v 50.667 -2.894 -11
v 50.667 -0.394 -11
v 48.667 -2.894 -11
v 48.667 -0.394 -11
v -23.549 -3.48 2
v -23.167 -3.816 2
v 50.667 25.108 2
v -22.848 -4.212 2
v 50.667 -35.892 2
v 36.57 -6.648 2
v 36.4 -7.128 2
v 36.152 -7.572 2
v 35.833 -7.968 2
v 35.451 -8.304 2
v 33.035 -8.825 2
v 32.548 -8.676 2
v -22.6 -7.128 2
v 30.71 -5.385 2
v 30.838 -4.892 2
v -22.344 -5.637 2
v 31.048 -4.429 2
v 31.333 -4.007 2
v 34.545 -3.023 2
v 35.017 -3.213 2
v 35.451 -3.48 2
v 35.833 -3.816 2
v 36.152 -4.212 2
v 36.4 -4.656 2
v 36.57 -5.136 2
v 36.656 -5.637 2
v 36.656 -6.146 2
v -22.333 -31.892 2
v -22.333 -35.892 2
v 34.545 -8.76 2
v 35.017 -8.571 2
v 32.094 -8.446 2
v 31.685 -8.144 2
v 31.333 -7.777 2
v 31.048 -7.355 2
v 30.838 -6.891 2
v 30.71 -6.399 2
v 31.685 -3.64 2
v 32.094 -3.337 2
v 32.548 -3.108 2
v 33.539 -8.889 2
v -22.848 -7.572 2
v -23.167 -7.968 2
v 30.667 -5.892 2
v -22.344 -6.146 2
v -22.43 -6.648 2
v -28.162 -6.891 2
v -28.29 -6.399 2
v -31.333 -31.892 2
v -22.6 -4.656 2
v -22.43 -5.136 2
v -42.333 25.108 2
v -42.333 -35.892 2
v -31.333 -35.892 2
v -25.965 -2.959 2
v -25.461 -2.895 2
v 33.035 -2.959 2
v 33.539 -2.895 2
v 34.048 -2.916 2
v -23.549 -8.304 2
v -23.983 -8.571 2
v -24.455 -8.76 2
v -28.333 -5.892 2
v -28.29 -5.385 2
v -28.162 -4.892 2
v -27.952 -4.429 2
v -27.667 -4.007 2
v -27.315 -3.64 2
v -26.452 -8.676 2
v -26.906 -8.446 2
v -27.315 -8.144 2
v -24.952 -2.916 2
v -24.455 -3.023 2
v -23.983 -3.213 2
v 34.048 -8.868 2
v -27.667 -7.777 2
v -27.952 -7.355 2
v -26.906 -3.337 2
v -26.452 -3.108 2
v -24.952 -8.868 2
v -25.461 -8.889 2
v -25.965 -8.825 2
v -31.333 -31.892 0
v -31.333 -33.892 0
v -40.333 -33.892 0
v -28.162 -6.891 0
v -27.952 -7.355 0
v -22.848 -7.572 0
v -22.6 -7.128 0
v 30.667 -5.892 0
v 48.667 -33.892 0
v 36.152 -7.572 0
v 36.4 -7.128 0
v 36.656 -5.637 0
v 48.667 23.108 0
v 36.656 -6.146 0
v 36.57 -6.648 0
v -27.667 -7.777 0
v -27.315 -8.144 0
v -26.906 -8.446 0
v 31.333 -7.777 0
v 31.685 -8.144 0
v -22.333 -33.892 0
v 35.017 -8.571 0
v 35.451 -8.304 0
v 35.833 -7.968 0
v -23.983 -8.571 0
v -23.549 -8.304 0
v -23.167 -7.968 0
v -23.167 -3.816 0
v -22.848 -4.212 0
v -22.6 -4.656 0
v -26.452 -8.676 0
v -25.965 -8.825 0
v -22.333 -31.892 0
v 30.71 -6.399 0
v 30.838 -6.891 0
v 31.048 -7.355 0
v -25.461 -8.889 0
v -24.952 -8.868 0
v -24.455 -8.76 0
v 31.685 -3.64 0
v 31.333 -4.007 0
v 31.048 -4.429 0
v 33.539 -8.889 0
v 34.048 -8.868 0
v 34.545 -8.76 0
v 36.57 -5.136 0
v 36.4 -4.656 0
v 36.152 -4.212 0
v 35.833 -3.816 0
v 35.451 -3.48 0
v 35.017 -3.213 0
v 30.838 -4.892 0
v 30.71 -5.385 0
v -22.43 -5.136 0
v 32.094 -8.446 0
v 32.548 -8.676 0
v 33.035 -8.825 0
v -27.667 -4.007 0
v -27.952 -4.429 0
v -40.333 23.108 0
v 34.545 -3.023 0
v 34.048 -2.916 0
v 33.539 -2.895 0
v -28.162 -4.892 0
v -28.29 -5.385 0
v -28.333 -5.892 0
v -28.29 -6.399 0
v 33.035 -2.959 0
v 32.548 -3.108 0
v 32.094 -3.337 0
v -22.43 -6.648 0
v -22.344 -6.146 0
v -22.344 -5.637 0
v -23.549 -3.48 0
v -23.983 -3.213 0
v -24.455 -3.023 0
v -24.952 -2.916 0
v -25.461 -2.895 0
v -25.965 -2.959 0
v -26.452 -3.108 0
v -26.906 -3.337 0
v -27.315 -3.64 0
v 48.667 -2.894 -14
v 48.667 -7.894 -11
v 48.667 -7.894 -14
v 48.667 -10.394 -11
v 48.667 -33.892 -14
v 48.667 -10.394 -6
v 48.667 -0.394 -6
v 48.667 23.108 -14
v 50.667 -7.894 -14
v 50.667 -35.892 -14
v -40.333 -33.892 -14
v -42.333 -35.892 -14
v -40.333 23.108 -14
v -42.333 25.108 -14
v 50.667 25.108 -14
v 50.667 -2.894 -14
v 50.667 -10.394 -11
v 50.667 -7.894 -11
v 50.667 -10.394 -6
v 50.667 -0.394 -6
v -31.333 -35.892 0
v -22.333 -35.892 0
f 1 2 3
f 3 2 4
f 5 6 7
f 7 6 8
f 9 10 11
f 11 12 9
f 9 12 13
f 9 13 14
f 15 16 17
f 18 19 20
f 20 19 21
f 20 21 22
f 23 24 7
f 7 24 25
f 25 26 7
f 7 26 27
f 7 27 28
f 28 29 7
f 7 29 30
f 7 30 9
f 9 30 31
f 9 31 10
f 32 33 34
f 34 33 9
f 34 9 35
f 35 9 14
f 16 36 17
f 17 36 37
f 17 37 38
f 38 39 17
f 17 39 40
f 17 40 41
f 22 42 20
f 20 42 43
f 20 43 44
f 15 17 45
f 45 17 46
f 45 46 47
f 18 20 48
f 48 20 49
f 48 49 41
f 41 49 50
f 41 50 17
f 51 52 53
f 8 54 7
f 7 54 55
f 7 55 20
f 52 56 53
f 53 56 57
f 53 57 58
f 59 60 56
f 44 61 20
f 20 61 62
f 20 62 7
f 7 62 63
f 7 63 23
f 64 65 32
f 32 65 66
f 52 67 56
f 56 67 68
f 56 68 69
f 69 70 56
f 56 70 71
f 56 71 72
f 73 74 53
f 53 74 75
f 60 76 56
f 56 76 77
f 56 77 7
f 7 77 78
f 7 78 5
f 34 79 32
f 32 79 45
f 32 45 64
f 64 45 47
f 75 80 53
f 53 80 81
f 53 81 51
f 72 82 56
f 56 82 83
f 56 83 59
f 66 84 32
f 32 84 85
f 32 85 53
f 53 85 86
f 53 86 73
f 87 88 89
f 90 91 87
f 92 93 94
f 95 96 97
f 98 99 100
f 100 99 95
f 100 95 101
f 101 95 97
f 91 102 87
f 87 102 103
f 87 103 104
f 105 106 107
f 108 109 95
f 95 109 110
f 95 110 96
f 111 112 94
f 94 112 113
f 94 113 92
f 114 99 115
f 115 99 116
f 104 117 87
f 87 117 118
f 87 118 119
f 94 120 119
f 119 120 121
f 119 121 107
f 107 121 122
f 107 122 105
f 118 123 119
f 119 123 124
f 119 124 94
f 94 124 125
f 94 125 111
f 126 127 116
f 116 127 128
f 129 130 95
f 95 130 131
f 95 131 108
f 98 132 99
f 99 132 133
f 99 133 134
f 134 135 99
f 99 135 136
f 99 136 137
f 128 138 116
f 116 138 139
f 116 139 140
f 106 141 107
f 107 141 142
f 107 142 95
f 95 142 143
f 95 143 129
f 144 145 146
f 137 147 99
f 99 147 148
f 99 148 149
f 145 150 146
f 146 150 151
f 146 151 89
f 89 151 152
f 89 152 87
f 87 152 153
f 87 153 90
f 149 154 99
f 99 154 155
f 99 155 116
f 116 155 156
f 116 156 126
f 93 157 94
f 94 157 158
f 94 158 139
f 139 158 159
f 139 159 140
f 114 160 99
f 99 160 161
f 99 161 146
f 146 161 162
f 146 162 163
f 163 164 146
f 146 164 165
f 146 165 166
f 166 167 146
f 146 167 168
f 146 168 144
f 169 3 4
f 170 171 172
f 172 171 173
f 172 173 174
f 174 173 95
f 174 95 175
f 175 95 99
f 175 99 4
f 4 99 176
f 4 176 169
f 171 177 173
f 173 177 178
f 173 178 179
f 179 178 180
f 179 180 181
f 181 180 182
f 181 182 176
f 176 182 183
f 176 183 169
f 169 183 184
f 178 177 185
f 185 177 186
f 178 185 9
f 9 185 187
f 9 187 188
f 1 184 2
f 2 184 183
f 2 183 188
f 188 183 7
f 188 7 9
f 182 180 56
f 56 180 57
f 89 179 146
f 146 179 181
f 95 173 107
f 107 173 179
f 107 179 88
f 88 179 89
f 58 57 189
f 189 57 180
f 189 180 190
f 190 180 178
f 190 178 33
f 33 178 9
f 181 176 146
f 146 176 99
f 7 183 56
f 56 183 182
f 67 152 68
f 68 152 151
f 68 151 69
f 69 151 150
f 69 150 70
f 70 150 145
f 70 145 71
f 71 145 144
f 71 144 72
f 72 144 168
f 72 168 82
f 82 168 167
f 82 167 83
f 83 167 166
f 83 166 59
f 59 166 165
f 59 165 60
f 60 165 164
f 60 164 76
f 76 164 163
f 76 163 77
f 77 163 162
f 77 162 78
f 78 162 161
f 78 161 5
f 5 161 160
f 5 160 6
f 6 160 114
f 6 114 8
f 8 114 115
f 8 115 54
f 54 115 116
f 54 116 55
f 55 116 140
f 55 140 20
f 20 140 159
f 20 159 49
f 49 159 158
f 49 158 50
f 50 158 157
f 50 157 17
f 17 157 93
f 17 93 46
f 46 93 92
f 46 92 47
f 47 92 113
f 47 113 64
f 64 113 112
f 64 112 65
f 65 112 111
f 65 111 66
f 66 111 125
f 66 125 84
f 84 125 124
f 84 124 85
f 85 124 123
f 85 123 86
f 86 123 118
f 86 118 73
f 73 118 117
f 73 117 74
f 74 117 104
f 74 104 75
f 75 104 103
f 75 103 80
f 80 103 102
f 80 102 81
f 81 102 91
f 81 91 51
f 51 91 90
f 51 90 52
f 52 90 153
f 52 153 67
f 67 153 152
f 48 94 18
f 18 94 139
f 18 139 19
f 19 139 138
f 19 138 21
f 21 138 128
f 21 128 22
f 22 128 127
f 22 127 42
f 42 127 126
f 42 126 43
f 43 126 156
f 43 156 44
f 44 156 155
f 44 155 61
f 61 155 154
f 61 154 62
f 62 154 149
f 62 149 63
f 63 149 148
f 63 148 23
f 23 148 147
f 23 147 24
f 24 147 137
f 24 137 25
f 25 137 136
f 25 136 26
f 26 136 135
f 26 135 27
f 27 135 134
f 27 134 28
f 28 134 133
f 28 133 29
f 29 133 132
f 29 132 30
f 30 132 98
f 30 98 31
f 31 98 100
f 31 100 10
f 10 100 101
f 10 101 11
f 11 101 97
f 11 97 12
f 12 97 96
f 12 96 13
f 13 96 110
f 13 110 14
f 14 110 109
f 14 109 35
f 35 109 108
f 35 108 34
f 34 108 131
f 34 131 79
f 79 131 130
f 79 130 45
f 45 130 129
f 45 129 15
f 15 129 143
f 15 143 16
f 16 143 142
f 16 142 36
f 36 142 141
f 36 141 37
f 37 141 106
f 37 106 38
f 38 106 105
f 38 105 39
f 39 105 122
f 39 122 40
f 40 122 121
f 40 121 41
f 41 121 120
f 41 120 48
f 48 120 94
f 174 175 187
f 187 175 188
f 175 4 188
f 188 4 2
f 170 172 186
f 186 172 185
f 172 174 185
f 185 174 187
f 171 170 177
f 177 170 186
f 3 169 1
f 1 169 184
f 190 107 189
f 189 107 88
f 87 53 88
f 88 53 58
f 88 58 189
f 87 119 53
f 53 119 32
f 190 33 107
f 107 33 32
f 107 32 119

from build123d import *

# Parameters (mm, degrees)
ESQUISSE1_W             = 89
ESQUISSE1_H             = 57
BOSS_EXTRU_1_DEPTH      = 2
ESQUISSE2_W             = 16
ESQUISSE2_H             = 57
BOSS_EXTRU_2_DEPTH      = 2
ESQUISSE3_W             = 16
ESQUISSE3_H             = 57
BOSS_EXTRU_3_DEPTH      = 2
ESQUISSE4_W             = 93
ESQUISSE4_H             = 16
BOSS_EXTRU_4_DEPTH      = 2
ESQUISSE5_W             = 93
ESQUISSE5_H             = 16
BOSS_EXTRU_5_DEPTH      = 2
ESQUISSE6_R             = 3
ENL_V_MAT_EXTRU_1_DEPTH = 2
ESQUISSE7_R             = 3
ENL_V_MAT_EXTRU_2_DEPTH = 2
ESQUISSE11_W            = 5
ESQUISSE11_H            = 10
ENL_V_MAT_EXTRU_3_DEPTH = 2
ESQUISSE13_W            = 2.999998882
ESQUISSE13_H            = 5
ENL_V_MAT_EXTRU_4_DEPTH = 2
ESQUISSE14_W            = 9
ESQUISSE14_H            = 4
ENL_V_MAT_EXTRU_7_DEPTH = 2


with BuildPart() as part:
    # Esquisse1 → Boss.-Extru.1 (new body)
    with BuildSketch(Plane.XY):
        with Locations((4.166807432, -5.391891892)):
            Rectangle(ESQUISSE1_W, ESQUISSE1_H)
    extrude(amount=BOSS_EXTRU_1_DEPTH)

    # Esquisse2 → Boss.-Extru.2 (add)
    with BuildSketch(Plane(origin=(48.666807432, 0, 0), x_dir=(0, 0, -1), z_dir=(1, 0, 0))):
        with Locations((6, -5.391891892)):
            Rectangle(ESQUISSE2_W, ESQUISSE2_H)
    extrude(amount=BOSS_EXTRU_2_DEPTH)

    # Esquisse3 → Boss.-Extru.3 (add)
    with BuildSketch(Plane.ZY.offset(40.333192568)):
        with Locations((-6, -5.391891892)):
            Rectangle(ESQUISSE3_W, ESQUISSE3_H)
    extrude(amount=BOSS_EXTRU_3_DEPTH)

    # Esquisse4 → Boss.-Extru.4 (add)
    with BuildSketch(Plane.XZ.offset(33.891891892)):
        with Locations((4.166807432, -6)):
            Rectangle(ESQUISSE4_W, ESQUISSE4_H)
    extrude(amount=BOSS_EXTRU_4_DEPTH)

    # Esquisse5 → Boss.-Extru.5 (add)
    with BuildSketch(Plane(origin=(0, 23.108108108, 0), x_dir=(1, 0, 0), z_dir=(0, 1, 0))):
        with Locations((4.166807432, 6)):
            Rectangle(ESQUISSE5_W, ESQUISSE5_H)
    extrude(amount=BOSS_EXTRU_5_DEPTH)

    # Esquisse6 → Enlèv. mat.-Extru.1 (cut)
    with BuildSketch(Plane(origin=(0, 0, 0), x_dir=(-1, 0, 0), z_dir=(0, 0, -1))):
        with Locations((25.333192568, -5.891891892)):
            Circle(ESQUISSE6_R)
    extrude(amount=-ENL_V_MAT_EXTRU_1_DEPTH, mode=Mode.SUBTRACT)

    # Esquisse7 → Enlèv. mat.-Extru.2 (cut)
    with BuildSketch(Plane(origin=(0, 0, 0), x_dir=(-1, 0, 0), z_dir=(0, 0, -1))):
        with Locations((-33.666807432, -5.891891892)):
            Circle(ESQUISSE7_R)
    extrude(amount=-ENL_V_MAT_EXTRU_2_DEPTH, mode=Mode.SUBTRACT)

    # Esquisse11 → Enlèv. mat.-Extru.3 (cut)
    with BuildSketch(Plane(origin=(50.666807432, 0, 0), x_dir=(0, 0, -1), z_dir=(1, 0, 0))):
        with Locations((8.500001118, -5.394481666)):
            Rectangle(ESQUISSE11_W, ESQUISSE11_H)
    extrude(amount=-ENL_V_MAT_EXTRU_3_DEPTH, mode=Mode.SUBTRACT)

    # Esquisse13 → Enlèv. mat.-Extru.4 (cut)
    with BuildSketch(Plane(origin=(50.666807432, 0, 0), x_dir=(0, 0, -1), z_dir=(1, 0, 0))):
        with Locations((12.500000559, -5.394481666)):
            Rectangle(ESQUISSE13_W, ESQUISSE13_H)
    extrude(amount=-ENL_V_MAT_EXTRU_4_DEPTH, mode=Mode.SUBTRACT)

    # Esquisse14 → Enlèv. mat.-Extru.7 (cut)
    with BuildSketch(Plane.XY.offset(2)):
        with Locations((-26.833192568, -33.891891892)):
            Rectangle(ESQUISSE14_W, ESQUISSE14_H)
    extrude(amount=-ENL_V_MAT_EXTRU_7_DEPTH, mode=Mode.SUBTRACT)


solid = part.part
